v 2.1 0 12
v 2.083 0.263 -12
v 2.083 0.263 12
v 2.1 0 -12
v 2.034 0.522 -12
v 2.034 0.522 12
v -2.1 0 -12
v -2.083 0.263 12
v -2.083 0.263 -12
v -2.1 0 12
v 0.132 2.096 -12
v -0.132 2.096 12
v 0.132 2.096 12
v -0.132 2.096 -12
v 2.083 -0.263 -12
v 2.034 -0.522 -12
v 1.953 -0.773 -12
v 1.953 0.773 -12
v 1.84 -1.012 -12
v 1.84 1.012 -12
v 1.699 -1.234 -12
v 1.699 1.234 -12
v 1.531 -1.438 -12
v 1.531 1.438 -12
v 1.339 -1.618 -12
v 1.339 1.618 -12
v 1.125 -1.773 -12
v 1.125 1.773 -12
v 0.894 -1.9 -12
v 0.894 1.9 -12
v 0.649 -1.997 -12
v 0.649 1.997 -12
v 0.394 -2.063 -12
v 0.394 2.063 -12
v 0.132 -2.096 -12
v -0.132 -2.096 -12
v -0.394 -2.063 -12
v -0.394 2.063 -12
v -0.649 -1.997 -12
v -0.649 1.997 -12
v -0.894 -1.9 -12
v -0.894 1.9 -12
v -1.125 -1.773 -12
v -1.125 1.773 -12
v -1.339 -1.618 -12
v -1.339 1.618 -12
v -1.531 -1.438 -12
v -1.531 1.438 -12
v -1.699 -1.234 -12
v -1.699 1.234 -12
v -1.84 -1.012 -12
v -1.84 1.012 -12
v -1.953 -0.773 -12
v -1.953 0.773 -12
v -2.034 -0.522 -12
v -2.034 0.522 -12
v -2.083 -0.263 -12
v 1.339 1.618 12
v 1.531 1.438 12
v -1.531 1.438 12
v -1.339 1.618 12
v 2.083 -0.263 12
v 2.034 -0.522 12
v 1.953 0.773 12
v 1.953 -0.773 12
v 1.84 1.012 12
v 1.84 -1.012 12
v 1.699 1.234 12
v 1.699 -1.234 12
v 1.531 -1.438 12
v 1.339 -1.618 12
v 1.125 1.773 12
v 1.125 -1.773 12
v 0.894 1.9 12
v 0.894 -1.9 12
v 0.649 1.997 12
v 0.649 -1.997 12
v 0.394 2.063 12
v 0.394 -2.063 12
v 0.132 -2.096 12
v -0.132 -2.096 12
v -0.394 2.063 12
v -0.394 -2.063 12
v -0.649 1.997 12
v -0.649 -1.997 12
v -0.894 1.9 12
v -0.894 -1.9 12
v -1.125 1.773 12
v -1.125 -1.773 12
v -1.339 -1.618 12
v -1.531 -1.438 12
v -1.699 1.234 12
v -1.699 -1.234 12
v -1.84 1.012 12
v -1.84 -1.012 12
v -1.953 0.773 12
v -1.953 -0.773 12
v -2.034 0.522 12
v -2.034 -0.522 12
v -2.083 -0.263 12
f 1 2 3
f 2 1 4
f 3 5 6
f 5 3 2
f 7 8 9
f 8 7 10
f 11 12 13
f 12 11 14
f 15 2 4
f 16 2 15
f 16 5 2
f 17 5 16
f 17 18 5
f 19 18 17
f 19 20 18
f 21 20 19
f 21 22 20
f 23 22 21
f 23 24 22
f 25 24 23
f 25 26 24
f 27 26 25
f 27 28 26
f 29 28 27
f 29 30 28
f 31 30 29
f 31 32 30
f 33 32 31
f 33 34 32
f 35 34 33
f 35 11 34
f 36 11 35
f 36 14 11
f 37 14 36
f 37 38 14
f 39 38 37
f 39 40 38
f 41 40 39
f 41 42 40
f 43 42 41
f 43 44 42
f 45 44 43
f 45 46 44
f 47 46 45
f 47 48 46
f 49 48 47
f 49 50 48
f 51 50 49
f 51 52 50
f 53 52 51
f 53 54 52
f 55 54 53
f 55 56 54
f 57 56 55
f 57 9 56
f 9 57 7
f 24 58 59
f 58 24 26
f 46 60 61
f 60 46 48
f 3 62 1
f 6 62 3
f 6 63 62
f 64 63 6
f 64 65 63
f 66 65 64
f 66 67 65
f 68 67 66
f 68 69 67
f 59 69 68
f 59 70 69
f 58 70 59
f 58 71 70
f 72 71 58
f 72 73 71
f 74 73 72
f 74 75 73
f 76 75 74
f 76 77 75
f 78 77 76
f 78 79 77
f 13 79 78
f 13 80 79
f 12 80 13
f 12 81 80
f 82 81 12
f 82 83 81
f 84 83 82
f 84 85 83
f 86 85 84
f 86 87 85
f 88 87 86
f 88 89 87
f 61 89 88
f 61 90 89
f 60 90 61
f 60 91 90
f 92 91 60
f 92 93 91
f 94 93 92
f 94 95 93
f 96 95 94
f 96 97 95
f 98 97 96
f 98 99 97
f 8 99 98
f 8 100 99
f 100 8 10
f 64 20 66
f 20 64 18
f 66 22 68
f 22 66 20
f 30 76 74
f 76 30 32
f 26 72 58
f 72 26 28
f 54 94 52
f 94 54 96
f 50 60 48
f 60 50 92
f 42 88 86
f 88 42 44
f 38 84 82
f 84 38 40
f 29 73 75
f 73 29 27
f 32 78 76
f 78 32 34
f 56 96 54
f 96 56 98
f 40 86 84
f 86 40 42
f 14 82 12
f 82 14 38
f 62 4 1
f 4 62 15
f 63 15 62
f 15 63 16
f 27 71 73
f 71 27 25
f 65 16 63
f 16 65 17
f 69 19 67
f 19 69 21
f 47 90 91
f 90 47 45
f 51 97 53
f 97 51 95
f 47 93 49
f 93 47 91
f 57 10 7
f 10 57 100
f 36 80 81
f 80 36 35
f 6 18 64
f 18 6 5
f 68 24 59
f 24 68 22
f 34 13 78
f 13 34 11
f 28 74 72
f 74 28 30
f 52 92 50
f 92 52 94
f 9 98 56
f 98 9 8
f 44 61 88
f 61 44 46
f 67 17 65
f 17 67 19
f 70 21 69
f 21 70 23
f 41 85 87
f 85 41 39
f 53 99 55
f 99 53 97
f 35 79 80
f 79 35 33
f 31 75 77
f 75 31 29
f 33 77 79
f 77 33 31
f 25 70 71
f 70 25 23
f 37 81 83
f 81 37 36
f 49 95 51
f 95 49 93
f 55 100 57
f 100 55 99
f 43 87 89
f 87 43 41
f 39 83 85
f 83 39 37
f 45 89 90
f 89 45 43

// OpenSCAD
$fn = 50;


difference() {
	union() {
		translate(v = [0, 0, -12.0000000000]) {
			cylinder(h = 24, r = 2.1000000000);
		}
	}
	union() {
		translate(v = [0, 0, -100.0000000000]) {
			cylinder(h = 200, r = 0);
		}
	}
}
